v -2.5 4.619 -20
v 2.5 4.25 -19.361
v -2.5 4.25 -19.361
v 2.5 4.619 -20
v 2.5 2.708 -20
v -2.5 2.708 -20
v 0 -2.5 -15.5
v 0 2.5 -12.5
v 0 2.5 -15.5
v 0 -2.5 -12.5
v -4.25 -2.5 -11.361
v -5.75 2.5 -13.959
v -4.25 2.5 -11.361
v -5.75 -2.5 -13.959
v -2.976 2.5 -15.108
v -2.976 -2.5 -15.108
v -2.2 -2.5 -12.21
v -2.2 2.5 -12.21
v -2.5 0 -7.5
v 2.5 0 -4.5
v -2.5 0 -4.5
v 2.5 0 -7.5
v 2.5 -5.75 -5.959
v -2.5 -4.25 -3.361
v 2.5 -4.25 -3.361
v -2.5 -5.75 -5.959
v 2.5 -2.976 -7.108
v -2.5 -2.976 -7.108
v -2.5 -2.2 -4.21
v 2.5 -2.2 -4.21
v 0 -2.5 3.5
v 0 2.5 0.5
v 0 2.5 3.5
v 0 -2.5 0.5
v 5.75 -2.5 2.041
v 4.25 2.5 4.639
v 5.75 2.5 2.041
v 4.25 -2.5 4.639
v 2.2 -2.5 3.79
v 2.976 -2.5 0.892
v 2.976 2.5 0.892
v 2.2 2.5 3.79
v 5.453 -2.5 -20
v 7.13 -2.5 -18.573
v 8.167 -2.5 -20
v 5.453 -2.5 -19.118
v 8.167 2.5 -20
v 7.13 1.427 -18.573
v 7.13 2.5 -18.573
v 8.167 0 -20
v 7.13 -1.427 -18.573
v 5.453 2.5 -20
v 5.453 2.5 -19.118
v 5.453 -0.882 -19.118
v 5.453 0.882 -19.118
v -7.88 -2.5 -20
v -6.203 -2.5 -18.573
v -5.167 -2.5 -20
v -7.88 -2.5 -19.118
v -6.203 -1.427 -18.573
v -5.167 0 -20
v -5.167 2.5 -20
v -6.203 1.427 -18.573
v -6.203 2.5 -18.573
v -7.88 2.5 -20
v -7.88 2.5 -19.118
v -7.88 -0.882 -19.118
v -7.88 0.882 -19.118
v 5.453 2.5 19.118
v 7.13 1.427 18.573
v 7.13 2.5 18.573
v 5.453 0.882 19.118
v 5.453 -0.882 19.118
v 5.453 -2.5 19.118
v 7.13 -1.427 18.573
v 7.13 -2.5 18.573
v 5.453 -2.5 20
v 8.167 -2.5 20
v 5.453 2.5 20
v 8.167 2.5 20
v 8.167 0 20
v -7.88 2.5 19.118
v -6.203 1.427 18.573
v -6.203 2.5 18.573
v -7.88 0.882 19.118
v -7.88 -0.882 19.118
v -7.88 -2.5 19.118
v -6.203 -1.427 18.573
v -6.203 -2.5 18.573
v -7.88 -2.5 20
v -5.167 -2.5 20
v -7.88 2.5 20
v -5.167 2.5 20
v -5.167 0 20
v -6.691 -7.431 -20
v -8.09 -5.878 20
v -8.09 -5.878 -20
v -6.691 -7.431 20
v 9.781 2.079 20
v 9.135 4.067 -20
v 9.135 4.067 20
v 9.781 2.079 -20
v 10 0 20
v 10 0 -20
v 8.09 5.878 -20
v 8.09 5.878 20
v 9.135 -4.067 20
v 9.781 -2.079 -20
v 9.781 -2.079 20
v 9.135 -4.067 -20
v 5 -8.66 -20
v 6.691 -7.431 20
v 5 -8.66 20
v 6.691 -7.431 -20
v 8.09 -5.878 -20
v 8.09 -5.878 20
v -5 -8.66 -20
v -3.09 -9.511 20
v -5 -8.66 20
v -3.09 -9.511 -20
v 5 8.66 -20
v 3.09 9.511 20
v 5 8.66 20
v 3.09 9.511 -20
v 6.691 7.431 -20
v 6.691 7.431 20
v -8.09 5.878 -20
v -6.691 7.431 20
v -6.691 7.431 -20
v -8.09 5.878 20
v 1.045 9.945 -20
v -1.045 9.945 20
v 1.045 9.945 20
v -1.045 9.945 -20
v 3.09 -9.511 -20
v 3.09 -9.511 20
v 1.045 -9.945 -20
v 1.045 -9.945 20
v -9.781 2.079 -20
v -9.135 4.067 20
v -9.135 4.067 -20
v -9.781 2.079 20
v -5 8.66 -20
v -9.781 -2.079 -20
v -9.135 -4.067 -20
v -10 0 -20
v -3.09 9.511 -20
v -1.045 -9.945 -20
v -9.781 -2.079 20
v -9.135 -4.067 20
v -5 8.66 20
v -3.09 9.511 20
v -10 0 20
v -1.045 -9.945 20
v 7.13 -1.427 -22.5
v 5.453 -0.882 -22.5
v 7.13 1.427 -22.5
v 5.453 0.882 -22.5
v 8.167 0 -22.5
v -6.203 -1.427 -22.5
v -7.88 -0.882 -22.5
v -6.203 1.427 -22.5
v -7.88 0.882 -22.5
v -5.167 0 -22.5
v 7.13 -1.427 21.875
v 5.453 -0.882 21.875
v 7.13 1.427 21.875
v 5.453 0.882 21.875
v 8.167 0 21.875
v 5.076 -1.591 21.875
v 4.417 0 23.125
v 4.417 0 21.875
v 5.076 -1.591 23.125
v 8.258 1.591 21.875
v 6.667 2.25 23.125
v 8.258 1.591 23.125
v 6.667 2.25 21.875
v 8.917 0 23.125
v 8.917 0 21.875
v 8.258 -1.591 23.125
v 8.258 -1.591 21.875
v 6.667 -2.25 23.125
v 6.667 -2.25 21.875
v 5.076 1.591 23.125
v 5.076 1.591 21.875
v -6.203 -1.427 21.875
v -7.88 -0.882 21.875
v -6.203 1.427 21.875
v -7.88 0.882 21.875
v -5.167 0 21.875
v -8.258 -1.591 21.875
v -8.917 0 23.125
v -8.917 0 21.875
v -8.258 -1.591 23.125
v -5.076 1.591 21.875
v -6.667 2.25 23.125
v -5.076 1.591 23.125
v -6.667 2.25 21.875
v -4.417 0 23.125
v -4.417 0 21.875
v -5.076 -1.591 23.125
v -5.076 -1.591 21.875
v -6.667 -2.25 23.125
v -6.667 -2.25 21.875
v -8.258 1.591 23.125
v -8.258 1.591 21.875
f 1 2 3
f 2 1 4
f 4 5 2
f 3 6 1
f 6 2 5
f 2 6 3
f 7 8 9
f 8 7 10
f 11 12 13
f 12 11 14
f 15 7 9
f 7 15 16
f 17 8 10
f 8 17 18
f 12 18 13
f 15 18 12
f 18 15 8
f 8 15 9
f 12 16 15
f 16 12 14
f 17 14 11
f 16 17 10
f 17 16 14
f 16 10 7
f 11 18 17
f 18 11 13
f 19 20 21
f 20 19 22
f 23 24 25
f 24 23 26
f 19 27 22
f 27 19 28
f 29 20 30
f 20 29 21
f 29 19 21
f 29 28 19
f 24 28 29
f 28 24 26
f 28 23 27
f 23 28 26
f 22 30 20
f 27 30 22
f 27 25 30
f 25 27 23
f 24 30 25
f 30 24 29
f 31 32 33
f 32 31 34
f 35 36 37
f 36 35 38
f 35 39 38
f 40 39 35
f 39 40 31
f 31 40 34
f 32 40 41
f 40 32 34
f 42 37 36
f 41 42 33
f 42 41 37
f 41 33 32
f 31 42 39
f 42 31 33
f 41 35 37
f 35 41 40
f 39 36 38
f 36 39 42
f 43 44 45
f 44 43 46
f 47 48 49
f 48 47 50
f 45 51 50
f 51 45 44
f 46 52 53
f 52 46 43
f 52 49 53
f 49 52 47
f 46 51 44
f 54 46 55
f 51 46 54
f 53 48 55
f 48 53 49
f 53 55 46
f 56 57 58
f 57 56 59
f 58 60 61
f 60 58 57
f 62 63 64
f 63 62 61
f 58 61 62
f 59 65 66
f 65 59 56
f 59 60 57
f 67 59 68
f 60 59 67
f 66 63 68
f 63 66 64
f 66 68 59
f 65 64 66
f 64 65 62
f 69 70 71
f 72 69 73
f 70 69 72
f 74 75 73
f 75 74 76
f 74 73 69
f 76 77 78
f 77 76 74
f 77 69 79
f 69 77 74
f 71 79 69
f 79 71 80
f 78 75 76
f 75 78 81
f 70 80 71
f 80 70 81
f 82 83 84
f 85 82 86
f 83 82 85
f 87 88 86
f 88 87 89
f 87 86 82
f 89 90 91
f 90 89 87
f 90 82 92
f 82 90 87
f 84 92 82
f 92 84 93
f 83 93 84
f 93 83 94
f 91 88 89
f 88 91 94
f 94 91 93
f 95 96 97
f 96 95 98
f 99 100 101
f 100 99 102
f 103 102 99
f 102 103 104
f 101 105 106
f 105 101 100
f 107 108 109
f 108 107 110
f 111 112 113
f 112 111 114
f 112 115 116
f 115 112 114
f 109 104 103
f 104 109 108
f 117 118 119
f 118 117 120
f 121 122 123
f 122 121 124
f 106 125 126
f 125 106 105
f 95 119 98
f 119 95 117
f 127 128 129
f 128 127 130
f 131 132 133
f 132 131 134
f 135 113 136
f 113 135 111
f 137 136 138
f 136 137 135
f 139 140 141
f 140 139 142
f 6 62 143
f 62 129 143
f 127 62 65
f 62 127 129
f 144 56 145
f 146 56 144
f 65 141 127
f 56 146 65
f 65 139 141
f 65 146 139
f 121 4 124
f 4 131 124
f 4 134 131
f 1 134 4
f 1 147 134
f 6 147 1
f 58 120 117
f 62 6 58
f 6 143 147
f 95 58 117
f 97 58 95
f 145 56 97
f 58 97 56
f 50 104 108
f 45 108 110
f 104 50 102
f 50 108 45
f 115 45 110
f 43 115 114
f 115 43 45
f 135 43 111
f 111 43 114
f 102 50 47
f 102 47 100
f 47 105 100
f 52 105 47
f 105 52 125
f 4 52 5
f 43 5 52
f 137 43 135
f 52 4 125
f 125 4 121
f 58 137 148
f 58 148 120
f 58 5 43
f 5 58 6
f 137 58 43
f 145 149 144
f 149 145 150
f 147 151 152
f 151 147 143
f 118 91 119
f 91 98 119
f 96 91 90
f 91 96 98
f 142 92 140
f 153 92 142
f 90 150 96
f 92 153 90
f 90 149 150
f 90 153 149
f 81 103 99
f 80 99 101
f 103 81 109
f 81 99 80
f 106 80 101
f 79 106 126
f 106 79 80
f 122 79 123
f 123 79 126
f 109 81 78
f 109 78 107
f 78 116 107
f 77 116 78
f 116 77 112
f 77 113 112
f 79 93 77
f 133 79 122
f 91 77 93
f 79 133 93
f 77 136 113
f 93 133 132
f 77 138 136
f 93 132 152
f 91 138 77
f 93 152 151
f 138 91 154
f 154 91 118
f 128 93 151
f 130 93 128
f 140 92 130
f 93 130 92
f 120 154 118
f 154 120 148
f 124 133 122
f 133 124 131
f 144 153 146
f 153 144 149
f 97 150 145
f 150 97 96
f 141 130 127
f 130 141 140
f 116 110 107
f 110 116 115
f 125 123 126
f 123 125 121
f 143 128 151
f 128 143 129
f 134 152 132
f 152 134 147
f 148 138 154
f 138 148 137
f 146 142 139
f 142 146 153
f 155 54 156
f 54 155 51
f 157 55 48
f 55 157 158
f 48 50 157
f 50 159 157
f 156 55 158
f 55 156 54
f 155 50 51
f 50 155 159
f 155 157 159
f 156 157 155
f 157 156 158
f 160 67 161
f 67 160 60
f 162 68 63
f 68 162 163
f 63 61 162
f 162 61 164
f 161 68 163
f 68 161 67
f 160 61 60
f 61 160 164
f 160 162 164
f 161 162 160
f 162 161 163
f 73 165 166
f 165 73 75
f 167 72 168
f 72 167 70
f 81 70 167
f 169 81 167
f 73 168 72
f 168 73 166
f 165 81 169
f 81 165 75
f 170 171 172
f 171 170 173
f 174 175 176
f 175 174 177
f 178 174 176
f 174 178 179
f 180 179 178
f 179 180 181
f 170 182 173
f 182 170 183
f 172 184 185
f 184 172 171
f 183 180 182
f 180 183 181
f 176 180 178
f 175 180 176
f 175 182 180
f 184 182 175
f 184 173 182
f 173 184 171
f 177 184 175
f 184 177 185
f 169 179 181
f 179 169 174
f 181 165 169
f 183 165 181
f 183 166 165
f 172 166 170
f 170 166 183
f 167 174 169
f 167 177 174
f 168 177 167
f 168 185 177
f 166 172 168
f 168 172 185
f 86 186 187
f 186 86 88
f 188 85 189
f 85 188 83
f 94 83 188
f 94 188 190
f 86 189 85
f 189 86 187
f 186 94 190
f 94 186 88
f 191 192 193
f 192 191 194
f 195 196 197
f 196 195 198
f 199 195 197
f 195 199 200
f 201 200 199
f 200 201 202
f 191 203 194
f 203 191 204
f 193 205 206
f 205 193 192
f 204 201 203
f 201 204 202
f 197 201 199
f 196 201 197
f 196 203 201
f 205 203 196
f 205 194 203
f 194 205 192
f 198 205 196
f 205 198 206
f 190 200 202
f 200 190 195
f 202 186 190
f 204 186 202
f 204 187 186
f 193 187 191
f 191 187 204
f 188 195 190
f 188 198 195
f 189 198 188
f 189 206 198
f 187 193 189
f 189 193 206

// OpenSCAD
// Parameters
main_body_diameter = 20;
main_body_length = 40;
screw_diameter = 3;
screw_length = 5;
helical_cut_width = 3;
helical_cut_depth = 5;
num_helical_cuts = 4;
helical_spacing = main_body_length / (num_helical_cuts + 1);
helical_angle = 30; // Angle for helical cuts

// Main body with helical cuts
module main_body() {
    difference() {
        cylinder(d=main_body_diameter, h=main_body_length, center=true);
        
        // Helical cuts
        for (i = [0:num_helical_cuts-1]) {
            rotate([0, 0, i * (360 / num_helical_cuts)])
            translate([0, 0, -main_body_length/2 + (i + 1) * helical_spacing])
            rotate([0, 90, 0])
            rotate_extrude(angle=helical_angle)
            translate([main_body_diameter/2, 0, 0])
            square([helical_cut_width, helical_cut_depth], center=true);
        }
        
        // Clamping screw holes on flat circular faces
        for (z = [-main_body_length/2, main_body_length/2]) {
            translate([main_body_diameter/3, 0, z])
            rotate([90, 0, 0])
            cylinder(d=screw_diameter, h=screw_length, center=true);
            
            translate([-main_body_diameter/3, 0, z])
            rotate([90, 0, 0])
            cylinder(d=screw_diameter, h=screw_length, center=true);
        }
    }
}

// Clamping screw
module clamping_screw() {
    union() {
        cylinder(d=screw_diameter, h=screw_length, center=true);
        translate([0, 0, screw_length/2])
        cylinder(d=screw_diameter*1.5, h=screw_length/4, center=true);
    }
}

// Assemble the model
module flexible_coupling() {
    main_body();
    
    // Positioning the screws on the flat circular faces
    for (z = [-main_body_length/2, main_body_length/2]) {
        translate([main_body_diameter/3, 0, z])
        clamping_screw();
        
        translate([-main_body_diameter/3, 0, z])
        clamping_screw();
    }
}

// Render the model
flexible_coupling();
